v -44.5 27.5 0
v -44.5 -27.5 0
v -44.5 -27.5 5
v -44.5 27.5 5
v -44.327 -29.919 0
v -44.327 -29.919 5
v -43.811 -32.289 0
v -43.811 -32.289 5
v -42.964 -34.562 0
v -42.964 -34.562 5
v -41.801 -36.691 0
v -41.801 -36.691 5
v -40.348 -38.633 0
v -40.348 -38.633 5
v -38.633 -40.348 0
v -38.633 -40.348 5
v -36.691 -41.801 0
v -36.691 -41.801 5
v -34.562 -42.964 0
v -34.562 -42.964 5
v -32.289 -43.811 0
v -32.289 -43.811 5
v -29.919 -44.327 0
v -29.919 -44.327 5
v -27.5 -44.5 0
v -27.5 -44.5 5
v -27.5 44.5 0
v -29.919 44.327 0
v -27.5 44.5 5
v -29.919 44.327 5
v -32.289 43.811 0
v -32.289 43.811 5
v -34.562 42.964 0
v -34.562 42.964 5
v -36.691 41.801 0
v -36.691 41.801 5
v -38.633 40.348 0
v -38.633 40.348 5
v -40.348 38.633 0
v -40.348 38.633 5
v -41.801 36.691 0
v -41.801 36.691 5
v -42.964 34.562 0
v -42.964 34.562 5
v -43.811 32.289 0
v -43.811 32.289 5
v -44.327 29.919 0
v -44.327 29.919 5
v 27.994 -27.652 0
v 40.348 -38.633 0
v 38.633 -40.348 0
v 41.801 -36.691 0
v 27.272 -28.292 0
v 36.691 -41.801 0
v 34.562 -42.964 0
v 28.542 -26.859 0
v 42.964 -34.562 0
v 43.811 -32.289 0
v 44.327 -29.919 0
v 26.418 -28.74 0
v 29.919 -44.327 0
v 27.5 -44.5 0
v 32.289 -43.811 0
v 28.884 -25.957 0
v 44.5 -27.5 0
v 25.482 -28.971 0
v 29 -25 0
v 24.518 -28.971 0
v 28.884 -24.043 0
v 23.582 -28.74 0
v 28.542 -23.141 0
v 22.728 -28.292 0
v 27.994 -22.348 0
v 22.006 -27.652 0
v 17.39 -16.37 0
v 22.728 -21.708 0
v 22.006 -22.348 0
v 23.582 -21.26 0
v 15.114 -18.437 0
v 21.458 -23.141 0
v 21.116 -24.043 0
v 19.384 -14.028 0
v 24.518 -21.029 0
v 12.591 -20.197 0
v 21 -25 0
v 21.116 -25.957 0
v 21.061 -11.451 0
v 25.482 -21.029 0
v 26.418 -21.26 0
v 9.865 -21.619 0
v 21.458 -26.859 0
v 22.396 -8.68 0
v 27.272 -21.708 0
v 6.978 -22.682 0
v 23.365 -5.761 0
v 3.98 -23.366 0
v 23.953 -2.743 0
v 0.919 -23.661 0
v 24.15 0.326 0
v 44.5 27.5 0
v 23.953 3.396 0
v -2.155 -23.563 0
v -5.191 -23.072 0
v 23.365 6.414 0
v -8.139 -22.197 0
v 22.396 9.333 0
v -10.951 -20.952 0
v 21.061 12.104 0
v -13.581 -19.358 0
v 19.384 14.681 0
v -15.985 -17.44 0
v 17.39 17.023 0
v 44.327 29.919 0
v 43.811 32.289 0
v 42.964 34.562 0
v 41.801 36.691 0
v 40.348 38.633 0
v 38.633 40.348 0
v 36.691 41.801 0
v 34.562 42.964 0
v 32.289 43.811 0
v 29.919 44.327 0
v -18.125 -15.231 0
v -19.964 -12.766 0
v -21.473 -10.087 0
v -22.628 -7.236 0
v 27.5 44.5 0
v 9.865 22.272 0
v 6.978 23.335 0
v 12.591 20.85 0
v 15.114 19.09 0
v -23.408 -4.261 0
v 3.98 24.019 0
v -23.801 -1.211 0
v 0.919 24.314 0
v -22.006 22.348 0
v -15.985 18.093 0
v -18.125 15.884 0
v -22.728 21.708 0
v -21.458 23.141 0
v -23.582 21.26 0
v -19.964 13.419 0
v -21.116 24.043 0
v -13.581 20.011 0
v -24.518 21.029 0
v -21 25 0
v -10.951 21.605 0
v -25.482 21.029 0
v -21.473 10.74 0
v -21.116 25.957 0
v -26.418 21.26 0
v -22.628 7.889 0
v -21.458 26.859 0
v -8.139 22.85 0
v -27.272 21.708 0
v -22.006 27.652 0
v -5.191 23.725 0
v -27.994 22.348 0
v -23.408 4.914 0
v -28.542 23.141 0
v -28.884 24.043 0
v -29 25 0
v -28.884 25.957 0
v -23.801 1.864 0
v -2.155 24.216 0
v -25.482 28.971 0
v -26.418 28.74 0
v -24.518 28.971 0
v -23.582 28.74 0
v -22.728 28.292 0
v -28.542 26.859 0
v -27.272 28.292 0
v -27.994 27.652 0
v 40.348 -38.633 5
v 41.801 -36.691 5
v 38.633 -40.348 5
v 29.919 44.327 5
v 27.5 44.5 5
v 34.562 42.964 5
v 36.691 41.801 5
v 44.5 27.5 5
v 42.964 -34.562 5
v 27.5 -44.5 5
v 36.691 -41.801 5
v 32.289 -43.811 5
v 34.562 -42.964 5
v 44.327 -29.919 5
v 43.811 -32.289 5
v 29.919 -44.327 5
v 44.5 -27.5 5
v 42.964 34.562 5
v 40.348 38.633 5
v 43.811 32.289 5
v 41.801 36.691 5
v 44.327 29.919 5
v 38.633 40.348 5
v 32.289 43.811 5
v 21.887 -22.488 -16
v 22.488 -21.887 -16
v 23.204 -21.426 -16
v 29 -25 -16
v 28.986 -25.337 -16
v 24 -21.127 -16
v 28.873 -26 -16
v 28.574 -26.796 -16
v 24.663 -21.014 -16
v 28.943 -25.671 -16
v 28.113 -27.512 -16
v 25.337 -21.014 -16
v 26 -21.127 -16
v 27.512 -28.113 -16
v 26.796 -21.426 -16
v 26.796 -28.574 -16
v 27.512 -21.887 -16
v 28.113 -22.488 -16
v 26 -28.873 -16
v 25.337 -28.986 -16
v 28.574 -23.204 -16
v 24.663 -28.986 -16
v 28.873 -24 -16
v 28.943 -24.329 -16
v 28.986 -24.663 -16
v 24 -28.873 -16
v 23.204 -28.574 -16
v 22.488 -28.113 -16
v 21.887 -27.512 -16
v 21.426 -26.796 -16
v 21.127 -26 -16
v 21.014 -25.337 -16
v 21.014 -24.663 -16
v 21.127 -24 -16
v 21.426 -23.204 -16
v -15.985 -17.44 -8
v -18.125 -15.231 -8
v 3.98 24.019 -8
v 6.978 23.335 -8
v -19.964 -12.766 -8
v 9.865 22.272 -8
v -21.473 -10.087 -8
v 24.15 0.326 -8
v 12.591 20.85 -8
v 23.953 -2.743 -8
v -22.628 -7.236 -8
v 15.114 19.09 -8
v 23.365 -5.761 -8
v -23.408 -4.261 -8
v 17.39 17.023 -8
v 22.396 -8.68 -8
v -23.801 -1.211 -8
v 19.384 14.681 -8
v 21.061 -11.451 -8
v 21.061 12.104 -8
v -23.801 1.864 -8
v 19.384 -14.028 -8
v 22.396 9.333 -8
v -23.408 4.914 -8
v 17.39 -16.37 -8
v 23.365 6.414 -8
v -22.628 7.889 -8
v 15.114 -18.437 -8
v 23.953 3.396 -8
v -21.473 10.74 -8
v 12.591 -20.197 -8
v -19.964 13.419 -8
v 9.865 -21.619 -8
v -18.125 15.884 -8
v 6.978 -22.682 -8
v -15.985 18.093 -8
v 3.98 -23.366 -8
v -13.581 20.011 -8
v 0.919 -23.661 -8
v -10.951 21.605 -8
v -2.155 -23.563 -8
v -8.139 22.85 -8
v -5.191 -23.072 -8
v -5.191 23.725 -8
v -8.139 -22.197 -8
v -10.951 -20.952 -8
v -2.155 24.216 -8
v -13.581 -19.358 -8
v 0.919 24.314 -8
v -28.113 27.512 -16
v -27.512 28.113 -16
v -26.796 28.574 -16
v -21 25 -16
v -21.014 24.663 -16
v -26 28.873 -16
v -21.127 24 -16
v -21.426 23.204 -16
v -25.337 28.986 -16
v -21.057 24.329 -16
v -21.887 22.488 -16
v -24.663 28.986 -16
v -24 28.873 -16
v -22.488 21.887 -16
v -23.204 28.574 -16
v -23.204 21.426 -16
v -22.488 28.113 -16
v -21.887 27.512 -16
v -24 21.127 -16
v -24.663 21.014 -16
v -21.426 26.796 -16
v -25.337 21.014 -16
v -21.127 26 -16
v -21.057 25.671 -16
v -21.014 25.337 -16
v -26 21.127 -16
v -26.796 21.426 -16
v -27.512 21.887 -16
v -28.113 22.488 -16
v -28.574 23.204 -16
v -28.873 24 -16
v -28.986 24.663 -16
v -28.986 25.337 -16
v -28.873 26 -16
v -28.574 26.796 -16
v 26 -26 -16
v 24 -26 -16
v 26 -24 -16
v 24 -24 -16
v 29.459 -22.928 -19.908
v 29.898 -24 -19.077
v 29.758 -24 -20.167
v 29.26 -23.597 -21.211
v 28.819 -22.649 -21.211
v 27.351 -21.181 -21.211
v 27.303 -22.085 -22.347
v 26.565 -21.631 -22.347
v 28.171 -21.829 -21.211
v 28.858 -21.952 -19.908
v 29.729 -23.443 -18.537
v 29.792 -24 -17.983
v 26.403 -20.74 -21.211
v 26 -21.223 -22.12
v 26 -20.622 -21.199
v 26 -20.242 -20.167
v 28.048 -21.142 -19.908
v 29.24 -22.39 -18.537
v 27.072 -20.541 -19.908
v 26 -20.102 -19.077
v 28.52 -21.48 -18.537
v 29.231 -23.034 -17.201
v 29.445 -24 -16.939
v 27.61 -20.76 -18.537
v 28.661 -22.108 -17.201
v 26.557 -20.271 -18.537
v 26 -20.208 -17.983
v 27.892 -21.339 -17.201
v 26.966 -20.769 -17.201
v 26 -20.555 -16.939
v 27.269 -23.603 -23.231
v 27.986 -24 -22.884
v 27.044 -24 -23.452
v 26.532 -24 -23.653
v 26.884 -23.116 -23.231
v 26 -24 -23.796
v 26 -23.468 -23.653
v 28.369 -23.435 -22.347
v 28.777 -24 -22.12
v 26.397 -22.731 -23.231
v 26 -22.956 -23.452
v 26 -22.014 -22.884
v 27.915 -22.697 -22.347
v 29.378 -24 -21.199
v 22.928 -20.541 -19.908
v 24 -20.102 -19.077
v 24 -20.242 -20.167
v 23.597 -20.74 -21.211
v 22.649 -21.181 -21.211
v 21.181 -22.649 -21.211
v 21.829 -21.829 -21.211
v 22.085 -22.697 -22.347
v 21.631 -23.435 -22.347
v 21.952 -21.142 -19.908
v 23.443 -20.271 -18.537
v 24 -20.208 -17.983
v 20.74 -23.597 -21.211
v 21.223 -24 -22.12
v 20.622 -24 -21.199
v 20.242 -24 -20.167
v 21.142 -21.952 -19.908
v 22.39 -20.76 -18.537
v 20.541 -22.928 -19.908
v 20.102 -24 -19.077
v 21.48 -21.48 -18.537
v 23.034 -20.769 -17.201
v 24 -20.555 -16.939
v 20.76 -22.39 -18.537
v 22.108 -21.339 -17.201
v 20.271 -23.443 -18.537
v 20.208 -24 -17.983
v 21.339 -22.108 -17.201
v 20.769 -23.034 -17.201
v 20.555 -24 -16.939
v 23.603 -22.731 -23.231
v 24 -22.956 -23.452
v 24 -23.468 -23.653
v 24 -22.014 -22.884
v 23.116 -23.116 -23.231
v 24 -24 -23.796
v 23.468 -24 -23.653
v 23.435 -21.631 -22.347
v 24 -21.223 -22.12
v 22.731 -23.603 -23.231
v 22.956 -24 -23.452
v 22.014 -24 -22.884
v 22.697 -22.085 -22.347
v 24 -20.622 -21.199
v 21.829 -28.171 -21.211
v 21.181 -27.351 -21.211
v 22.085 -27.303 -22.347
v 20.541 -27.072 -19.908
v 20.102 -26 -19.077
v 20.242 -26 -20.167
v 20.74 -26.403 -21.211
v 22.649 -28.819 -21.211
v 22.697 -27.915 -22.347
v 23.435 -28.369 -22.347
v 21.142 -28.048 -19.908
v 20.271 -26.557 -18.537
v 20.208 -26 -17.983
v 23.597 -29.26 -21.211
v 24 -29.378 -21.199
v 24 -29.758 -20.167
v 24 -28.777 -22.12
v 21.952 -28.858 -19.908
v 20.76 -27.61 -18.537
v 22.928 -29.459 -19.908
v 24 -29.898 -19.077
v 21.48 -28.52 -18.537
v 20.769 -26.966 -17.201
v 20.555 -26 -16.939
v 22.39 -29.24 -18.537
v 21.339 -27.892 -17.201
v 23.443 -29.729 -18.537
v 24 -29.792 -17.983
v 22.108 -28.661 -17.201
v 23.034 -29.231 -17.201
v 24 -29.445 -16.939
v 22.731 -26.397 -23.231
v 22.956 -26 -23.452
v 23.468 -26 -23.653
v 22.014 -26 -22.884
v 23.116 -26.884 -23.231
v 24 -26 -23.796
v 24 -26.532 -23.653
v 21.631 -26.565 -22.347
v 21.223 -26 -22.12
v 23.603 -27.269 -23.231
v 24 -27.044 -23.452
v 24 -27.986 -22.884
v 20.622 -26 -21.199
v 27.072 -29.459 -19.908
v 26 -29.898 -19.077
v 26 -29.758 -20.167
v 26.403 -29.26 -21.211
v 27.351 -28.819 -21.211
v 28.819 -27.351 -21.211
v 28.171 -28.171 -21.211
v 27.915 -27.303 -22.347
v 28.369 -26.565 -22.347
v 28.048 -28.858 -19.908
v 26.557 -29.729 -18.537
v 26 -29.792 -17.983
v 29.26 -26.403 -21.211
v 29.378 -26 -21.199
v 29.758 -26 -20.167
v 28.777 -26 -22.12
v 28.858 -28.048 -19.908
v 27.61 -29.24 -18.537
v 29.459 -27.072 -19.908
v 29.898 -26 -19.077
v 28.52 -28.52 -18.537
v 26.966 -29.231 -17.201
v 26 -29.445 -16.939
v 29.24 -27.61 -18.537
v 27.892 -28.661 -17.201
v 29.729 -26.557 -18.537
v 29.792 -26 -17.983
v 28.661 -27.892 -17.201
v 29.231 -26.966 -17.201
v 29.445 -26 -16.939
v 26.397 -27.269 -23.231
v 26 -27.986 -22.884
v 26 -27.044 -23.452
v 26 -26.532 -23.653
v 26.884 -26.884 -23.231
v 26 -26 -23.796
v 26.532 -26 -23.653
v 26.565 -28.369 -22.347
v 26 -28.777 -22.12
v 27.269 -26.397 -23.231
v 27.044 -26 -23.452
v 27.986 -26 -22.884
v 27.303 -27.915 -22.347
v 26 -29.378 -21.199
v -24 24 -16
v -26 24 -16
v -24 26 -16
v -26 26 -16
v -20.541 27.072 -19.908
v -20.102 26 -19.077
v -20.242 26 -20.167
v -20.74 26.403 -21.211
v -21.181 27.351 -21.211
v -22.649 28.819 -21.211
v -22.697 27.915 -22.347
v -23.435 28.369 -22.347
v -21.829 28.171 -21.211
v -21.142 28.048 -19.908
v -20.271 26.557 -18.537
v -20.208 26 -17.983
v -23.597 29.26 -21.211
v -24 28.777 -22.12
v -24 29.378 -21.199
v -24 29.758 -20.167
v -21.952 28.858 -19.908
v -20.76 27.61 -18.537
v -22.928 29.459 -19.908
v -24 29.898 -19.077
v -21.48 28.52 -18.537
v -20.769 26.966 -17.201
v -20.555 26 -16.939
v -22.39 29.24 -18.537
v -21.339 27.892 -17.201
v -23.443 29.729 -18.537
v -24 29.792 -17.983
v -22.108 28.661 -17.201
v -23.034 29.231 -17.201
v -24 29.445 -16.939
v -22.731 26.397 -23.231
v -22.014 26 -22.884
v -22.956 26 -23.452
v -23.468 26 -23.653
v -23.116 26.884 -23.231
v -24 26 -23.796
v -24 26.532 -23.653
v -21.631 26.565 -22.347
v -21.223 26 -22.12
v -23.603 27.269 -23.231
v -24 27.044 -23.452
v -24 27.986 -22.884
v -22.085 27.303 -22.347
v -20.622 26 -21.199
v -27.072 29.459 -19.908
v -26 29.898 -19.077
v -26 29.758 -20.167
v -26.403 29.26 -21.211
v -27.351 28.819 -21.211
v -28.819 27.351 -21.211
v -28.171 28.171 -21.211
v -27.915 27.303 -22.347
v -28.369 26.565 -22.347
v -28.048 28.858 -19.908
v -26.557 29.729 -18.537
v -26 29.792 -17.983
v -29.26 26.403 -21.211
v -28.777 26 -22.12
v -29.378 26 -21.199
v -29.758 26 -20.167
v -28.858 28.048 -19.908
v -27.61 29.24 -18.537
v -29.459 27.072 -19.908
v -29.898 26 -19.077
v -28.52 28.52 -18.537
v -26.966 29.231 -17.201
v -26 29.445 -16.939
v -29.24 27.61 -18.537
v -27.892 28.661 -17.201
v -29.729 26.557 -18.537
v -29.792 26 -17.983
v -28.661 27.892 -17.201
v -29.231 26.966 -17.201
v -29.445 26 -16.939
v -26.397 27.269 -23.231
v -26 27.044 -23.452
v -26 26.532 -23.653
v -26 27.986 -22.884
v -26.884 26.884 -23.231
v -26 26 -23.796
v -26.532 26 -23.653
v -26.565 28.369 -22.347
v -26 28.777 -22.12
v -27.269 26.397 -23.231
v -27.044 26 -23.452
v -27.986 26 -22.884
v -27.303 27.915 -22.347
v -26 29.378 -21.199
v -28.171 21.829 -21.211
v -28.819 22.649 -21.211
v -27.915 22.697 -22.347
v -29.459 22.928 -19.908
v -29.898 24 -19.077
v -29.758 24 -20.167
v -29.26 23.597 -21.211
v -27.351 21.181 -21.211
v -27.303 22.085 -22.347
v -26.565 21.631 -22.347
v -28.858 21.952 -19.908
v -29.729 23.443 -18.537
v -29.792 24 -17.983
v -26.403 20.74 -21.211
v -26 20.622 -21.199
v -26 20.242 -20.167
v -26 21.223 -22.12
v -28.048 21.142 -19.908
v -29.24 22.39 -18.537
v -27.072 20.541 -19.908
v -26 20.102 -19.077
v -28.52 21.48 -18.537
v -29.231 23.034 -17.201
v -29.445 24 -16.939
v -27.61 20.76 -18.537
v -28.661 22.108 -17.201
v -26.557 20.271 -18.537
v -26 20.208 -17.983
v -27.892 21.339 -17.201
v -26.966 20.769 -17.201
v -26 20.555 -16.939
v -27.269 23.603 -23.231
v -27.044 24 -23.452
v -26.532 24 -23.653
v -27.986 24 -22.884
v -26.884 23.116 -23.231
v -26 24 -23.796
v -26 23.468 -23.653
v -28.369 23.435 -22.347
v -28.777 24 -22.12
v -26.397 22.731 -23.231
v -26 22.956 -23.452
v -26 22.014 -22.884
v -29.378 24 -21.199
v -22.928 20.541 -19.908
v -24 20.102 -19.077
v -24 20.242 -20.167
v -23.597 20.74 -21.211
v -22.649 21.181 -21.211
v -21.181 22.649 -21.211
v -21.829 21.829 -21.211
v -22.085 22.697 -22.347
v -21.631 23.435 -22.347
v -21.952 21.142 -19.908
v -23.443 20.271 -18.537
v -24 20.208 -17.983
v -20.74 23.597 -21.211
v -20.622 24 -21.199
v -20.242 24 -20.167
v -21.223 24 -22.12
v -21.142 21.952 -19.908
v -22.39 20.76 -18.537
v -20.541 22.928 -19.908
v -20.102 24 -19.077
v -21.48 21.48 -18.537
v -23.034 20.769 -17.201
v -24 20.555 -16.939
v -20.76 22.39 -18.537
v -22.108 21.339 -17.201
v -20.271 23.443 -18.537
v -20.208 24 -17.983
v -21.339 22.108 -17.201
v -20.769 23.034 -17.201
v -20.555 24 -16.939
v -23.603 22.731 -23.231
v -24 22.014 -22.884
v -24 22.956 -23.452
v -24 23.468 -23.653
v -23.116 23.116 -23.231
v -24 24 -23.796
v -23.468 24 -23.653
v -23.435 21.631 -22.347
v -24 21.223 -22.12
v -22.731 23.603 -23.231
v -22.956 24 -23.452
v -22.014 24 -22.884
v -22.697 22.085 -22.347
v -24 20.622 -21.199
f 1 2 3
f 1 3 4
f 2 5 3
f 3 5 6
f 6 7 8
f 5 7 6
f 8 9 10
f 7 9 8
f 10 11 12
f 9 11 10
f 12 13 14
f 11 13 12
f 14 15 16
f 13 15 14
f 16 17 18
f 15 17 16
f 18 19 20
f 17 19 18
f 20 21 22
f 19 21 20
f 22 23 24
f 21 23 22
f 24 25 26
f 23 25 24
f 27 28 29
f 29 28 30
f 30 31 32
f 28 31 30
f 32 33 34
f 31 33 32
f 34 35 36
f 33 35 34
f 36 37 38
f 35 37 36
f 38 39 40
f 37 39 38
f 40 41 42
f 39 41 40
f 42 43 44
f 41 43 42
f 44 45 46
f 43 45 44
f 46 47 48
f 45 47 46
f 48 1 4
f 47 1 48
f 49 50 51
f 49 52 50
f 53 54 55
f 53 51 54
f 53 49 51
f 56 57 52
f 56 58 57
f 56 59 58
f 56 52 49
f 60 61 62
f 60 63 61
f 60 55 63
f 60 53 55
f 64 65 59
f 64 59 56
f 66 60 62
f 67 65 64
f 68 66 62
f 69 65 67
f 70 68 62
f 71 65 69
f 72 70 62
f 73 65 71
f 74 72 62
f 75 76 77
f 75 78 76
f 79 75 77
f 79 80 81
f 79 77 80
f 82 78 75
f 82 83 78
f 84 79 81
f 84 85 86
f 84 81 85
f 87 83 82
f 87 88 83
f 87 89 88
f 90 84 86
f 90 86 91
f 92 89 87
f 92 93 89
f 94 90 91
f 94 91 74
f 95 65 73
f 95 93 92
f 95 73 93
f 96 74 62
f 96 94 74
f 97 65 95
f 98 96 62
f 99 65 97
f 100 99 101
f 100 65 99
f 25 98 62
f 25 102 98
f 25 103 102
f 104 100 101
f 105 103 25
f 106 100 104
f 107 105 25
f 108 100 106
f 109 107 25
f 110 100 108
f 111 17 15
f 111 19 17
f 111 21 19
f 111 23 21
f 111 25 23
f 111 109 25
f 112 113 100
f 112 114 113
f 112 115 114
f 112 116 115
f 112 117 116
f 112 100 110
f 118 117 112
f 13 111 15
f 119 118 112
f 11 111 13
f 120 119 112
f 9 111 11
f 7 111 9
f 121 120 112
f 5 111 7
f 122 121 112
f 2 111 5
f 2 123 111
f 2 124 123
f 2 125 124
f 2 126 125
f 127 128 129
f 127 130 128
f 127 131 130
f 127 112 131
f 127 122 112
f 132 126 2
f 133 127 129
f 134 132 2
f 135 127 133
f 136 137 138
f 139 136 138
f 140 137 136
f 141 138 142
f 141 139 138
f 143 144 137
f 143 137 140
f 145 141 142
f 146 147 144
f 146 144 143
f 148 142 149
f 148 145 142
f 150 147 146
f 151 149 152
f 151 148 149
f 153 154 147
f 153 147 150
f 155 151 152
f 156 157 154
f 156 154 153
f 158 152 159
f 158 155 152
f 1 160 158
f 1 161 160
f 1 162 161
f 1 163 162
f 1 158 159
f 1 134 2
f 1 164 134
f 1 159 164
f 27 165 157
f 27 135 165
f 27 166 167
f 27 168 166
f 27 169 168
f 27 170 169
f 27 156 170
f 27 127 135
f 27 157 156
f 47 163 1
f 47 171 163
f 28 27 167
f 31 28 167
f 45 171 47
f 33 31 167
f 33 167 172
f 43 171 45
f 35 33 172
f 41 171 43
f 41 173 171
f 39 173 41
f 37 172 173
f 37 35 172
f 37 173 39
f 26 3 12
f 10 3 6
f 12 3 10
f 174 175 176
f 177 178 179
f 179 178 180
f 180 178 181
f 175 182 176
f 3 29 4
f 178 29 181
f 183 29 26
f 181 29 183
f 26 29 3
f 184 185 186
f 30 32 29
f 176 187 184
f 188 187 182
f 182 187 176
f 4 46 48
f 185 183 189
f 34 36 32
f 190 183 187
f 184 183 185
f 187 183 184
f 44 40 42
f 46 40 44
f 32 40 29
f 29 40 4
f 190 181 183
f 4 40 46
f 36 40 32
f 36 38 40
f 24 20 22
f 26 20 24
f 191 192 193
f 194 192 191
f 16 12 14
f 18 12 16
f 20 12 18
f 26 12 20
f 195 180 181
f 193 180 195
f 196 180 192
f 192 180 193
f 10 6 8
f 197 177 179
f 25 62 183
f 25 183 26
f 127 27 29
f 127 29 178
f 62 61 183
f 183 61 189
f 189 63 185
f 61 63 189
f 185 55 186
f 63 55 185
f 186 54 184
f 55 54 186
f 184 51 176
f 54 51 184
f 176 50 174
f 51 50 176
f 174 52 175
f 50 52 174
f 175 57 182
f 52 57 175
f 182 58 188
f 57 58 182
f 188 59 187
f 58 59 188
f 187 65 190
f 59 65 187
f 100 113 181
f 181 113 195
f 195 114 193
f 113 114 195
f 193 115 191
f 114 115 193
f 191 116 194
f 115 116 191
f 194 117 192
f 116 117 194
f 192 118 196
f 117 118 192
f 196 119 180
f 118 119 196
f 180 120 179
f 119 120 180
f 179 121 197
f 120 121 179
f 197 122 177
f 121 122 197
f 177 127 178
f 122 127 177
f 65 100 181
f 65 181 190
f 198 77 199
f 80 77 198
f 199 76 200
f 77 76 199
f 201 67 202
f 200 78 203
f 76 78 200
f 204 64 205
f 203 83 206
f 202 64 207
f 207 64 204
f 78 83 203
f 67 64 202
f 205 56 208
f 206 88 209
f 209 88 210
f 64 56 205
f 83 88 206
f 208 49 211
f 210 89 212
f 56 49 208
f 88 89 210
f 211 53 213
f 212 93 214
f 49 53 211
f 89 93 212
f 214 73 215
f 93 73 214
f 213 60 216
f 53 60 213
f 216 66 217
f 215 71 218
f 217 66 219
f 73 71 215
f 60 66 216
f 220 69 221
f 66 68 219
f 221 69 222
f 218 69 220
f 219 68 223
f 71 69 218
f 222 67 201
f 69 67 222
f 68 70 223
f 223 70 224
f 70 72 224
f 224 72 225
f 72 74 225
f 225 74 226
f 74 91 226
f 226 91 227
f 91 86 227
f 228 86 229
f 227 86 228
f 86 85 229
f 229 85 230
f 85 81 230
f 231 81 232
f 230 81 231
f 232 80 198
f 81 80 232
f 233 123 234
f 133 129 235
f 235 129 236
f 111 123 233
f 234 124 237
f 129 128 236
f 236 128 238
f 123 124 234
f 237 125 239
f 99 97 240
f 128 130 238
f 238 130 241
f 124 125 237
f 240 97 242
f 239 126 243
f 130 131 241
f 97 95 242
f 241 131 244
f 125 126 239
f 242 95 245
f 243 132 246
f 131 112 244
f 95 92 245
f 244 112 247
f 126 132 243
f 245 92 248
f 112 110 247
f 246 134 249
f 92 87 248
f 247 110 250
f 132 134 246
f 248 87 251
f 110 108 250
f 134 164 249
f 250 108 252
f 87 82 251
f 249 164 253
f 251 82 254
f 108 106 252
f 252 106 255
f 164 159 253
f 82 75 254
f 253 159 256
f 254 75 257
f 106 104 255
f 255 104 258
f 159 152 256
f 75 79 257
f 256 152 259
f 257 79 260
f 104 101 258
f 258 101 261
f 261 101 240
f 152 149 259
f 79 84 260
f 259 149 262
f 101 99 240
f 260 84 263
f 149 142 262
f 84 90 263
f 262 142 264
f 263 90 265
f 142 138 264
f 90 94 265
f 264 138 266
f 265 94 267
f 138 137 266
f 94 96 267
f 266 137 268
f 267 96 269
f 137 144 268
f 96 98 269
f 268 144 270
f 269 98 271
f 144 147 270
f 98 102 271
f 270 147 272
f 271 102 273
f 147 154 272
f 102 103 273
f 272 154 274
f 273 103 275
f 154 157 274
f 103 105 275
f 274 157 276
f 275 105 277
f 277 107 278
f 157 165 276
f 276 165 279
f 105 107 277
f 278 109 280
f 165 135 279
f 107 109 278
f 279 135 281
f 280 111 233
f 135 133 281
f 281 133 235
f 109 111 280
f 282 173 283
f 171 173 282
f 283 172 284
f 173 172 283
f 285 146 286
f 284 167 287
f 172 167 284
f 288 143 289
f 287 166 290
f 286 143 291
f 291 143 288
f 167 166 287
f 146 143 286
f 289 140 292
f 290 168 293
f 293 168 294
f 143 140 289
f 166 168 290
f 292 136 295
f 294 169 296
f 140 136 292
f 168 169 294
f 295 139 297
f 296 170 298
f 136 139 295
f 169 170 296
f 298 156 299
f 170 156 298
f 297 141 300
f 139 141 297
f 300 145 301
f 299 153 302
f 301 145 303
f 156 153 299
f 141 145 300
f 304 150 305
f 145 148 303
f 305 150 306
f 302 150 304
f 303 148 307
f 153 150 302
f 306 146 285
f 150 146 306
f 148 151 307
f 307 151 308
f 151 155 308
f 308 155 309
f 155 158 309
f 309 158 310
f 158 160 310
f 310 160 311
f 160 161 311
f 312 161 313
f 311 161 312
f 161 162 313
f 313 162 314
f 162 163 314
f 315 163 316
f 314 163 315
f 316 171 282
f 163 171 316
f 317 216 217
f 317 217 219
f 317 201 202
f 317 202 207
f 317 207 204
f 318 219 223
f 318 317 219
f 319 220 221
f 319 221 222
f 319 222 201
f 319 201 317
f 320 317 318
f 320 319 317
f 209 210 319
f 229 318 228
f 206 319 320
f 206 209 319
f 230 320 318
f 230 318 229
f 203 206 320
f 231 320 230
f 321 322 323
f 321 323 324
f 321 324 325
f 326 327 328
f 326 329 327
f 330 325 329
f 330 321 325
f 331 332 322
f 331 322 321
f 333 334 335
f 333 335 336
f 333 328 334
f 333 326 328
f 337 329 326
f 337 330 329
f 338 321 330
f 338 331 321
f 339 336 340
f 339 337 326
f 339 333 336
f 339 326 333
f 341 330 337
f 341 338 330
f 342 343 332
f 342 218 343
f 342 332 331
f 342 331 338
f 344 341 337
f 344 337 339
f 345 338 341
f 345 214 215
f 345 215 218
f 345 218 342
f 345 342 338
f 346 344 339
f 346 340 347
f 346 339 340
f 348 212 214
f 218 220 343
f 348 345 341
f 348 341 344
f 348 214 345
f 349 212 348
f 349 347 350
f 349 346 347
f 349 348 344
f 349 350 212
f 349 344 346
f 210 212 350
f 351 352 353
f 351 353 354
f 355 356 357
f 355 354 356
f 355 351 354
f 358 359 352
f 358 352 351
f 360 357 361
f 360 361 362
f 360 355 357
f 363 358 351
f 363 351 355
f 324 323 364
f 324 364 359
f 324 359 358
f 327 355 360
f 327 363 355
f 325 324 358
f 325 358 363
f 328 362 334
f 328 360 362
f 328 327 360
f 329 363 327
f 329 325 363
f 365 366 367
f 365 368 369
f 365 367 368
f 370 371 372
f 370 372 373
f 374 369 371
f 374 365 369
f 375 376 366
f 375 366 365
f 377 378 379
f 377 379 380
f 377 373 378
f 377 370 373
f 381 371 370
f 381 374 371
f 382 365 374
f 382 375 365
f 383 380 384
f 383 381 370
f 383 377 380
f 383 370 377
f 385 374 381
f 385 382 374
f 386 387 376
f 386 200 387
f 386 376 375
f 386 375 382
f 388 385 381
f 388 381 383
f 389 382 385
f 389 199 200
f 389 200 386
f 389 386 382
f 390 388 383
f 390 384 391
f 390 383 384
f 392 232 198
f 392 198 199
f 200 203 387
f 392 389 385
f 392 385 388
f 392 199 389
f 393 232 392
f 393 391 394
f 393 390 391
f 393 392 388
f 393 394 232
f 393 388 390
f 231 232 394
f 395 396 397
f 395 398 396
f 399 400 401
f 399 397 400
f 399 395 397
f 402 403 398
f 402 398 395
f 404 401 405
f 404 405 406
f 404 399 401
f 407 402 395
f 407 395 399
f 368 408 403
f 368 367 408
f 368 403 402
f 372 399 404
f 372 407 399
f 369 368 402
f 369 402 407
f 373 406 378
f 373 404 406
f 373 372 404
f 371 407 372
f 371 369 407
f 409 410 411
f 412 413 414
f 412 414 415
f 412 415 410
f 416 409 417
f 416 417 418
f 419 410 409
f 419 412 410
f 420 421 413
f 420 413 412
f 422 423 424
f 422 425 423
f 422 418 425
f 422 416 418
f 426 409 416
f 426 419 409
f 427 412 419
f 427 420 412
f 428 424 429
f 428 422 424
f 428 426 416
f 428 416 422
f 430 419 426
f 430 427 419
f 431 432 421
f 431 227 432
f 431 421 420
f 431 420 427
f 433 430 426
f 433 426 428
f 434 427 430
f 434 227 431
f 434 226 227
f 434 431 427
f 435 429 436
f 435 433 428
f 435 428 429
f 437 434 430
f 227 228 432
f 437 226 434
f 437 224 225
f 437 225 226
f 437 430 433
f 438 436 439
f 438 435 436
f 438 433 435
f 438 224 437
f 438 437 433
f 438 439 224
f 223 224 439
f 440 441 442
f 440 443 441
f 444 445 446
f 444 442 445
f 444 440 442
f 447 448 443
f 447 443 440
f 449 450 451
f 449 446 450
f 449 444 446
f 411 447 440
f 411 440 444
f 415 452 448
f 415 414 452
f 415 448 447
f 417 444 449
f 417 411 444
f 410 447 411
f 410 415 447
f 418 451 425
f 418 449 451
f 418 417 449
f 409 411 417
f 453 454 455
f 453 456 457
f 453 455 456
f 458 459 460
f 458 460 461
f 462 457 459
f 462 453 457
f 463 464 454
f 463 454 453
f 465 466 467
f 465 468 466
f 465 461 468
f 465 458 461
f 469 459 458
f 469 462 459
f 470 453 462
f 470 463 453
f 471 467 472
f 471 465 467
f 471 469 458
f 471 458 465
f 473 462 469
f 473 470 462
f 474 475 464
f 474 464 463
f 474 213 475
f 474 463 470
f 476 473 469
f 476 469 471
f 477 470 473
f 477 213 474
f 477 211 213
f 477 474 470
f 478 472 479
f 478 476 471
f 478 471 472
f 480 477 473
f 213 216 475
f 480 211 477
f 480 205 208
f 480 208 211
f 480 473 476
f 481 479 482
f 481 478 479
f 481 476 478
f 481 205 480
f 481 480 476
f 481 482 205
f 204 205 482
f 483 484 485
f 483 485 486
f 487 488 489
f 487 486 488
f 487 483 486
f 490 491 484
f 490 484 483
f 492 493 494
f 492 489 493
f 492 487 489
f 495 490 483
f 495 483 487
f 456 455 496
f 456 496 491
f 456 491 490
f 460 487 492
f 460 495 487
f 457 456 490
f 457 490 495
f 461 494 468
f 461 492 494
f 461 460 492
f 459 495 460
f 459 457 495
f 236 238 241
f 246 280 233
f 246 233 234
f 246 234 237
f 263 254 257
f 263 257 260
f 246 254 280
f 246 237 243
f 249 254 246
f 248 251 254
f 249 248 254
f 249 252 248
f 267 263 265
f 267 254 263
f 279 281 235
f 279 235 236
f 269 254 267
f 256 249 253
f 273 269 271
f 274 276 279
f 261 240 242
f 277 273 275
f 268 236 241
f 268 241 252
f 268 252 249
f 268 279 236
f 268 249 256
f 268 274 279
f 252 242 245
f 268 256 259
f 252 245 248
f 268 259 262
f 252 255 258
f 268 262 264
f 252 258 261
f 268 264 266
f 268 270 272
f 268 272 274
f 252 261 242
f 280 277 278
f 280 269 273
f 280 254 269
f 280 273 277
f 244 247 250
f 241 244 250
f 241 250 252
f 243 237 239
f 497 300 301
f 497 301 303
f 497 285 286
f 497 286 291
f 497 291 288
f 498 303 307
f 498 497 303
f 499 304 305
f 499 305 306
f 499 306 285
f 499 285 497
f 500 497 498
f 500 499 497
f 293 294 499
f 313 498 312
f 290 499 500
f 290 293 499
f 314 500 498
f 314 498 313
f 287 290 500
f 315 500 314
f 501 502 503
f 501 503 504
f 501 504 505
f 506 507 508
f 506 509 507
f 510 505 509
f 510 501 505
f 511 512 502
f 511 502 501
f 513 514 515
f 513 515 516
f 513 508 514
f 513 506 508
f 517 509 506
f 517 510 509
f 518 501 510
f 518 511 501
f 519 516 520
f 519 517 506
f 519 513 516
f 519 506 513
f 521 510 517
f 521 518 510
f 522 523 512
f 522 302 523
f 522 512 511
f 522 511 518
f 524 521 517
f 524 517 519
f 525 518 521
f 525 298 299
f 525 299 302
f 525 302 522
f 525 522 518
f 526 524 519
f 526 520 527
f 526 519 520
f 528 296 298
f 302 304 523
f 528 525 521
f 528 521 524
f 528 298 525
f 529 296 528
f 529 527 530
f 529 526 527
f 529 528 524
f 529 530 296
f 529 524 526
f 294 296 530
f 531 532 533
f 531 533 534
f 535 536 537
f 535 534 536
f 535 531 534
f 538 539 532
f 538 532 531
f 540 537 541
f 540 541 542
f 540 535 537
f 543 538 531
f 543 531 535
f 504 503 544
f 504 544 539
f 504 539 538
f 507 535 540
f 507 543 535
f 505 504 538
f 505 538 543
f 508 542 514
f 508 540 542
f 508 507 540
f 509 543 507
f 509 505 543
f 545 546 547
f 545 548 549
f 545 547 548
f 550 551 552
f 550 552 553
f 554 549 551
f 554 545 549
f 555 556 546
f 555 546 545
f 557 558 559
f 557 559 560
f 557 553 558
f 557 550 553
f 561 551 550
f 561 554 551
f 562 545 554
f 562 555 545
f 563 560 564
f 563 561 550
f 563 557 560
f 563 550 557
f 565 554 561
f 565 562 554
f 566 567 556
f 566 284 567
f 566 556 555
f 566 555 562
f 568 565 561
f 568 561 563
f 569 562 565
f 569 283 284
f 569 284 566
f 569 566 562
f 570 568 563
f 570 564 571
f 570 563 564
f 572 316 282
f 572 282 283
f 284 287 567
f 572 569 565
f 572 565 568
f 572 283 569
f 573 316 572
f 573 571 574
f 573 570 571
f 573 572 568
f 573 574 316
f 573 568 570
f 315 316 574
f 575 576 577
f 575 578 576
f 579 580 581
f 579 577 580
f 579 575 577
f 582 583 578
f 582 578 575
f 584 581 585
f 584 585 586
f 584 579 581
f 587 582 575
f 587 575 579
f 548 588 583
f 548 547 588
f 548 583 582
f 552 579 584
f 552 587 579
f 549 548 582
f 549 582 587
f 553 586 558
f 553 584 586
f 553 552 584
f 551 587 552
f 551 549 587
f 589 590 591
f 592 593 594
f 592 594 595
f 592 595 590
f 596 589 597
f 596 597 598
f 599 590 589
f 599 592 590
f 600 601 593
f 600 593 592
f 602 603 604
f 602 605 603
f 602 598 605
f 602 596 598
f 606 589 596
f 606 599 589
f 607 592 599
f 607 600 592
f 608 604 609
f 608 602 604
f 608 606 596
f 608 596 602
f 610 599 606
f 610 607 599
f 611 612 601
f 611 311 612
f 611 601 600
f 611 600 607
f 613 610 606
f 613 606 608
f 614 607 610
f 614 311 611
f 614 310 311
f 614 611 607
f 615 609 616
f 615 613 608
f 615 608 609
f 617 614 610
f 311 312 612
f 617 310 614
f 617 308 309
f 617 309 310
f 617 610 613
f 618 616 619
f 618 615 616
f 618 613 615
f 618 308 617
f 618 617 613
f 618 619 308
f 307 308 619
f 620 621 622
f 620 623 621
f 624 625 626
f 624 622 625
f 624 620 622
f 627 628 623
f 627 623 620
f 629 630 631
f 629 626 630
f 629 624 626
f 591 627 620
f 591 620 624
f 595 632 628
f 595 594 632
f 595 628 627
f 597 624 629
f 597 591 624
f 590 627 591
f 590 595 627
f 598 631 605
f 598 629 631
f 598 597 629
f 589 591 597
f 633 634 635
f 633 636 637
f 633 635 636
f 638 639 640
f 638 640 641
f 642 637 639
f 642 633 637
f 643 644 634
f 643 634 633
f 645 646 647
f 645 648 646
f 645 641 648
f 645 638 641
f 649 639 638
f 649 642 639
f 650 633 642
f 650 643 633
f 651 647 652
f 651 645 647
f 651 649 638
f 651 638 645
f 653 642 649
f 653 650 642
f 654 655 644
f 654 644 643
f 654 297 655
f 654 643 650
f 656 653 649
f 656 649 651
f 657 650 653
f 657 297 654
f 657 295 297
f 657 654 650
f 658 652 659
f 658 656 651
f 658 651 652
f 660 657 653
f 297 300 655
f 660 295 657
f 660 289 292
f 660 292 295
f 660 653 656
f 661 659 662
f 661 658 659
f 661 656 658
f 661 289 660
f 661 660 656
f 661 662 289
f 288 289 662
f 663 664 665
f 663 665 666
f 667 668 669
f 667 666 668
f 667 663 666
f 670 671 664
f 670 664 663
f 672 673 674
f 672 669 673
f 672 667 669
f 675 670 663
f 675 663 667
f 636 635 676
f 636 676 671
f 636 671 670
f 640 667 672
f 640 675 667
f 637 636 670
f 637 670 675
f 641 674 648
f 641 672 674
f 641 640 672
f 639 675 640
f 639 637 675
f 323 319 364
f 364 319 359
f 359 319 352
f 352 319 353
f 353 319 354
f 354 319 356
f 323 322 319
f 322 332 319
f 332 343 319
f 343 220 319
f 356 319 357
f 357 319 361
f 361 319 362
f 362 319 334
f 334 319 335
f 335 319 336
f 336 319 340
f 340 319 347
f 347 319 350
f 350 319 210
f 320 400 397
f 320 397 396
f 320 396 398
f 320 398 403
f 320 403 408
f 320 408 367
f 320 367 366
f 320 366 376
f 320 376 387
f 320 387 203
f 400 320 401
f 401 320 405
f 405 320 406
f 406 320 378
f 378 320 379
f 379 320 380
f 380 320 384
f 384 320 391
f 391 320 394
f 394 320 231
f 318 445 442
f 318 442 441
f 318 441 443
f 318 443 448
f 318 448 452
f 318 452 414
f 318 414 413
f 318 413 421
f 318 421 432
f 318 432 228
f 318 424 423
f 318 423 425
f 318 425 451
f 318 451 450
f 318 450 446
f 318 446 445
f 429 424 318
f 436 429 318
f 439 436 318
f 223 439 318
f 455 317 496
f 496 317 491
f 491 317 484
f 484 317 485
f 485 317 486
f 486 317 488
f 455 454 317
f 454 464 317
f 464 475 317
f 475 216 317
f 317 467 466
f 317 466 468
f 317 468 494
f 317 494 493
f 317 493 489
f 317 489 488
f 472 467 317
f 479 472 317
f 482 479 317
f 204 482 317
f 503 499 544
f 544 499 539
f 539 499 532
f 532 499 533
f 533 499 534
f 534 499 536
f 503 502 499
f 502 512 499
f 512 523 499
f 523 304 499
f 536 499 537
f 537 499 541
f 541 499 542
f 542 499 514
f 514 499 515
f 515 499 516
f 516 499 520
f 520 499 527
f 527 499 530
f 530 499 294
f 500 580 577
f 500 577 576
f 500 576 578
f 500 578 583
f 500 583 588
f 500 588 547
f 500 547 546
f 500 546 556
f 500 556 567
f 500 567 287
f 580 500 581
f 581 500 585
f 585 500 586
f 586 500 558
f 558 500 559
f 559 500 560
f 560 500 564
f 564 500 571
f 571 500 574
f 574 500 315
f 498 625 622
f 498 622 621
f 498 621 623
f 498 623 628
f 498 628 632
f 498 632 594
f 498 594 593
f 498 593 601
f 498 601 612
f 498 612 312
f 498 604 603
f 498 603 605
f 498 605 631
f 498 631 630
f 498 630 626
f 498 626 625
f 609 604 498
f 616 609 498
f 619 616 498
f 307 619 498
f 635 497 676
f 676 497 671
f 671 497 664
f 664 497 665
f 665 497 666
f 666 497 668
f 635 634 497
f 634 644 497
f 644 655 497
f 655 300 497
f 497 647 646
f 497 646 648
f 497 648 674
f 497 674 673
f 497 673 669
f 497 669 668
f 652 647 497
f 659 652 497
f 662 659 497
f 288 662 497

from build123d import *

# Parameters (mm, degrees)
BOX002_W     = 2
BOX002_H     = 12
BOX002_DEPTH = 10
BOX001_W     = 12
BOX001_H     = 2
BOX001_DEPTH = 10
BOX003_W     = 2
BOX003_H     = 12
BOX003_DEPTH = 10
BOX_W        = 12
BOX_H        = 2
BOX_DEPTH    = 10
PAD_DEPTH    = 5
SKETCH001_R  = 24
PAD001_DEPTH = 8
SKETCH002_R  = 4
PAD002_DEPTH = 16


with BuildPart() as cubo002:
    # Box002 → Box002 (new body)
    with BuildSketch(Plane(origin=(-26, 19, -25), x_dir=(1, 0, 0), z_dir=(0, 0, 1))):
        with Locations((1, 6)):
            Rectangle(BOX002_W, BOX002_H)
    extrude(amount=BOX002_DEPTH)


with BuildPart() as fusion:
    # Box001 → Box001 (new body)
    with BuildSketch(Plane(origin=(-31, 24, -25), x_dir=(1, 0, 0), z_dir=(0, 0, 1))):
        with Locations((6, 1)):
            Rectangle(BOX001_W, BOX001_H)
    extrude(amount=BOX001_DEPTH)

    # Fusion: union Cubo002
    add(cubo002.part)


with BuildPart() as cut001:
    # Sphere001 → Sphere001 (revolve)
    with BuildSketch(Plane(origin=(-25, 25, -19), x_dir=(1, 0, 0), z_dir=(0, -1, 0))):
        with BuildLine():
            ThreePointArc((0, -5), (5, 0), (0, 5))
            Line((0, 5), (0, -5))
        make_face()
    revolve(axis=Axis((-25, 25, -19), (0, 0, 1)))

    # Cut001: cut Fusion
    add(fusion.part, mode=Mode.SUBTRACT)


with BuildPart() as cubo003:
    # Box003 → Box003 (new body)
    with BuildSketch(Plane(origin=(24, -31, -25), x_dir=(1, 0, 0), z_dir=(0, 0, 1))):
        with Locations((1, 6)):
            Rectangle(BOX003_W, BOX003_H)
    extrude(amount=BOX003_DEPTH)


with BuildPart() as fusion001:
    # Box → Box (new body)
    with BuildSketch(Plane(origin=(19, -26, -25), x_dir=(1, 0, 0), z_dir=(0, 0, 1))):
        with Locations((6, 1)):
            Rectangle(BOX_W, BOX_H)
    extrude(amount=BOX_DEPTH)

    # Fusion001: union Cubo003
    add(cubo003.part)


with BuildPart() as cut:
    # Sphere → Sphere (revolve)
    with BuildSketch(Plane(origin=(25, -25, -19), x_dir=(1, 0, 0), z_dir=(0, -1, 0))):
        with BuildLine():
            ThreePointArc((0, -5), (5, 0), (0, 5))
            Line((0, 5), (0, -5))
        make_face()
    revolve(axis=Axis((25, -25, -19), (0, 0, 1)))

    # Cut: cut Fusion001
    add(fusion001.part, mode=Mode.SUBTRACT)


with BuildPart() as fusion002:
    # Sketch → Pad (new body)
    with BuildSketch(Plane.XY):
        with BuildLine():
            Line((-27.5, 44.5), (27.5, 44.5))
            ThreePointArc((44.5, 27.5), (39.520815, 39.520815), (27.5, 44.5))
            Line((44.5, 27.5), (44.5, -27.5))
            ThreePointArc((27.5, -44.5), (39.520815, -39.520815), (44.5, -27.5))
            Line((27.5, -44.5), (-27.5, -44.5))
            ThreePointArc((-44.5, -27.5), (-39.520815, -39.520815), (-27.5, -44.5))
            Line((-44.5, -27.5), (-44.5, 27.5))
            ThreePointArc((-27.5, 44.5), (-39.520815, 39.520815), (-44.5, 27.5))
        make_face()
    extrude(amount=PAD_DEPTH)

    # Sketch001 (on Face9 of Pad) → Pad001 (join)
    with BuildSketch(Plane(origin=(0, 0, 0), x_dir=(1, 0, 0), z_dir=(0, 0, -1))):
        with Locations((0.149781, -0.32649)):
            Circle(SKETCH001_R)
    extrude(amount=PAD001_DEPTH)

    # Sketch002 (on Face4 of Pad001) → Pad002 (join)
    with BuildSketch(Plane(origin=(0, 0, 0), x_dir=(1, 0, 0), z_dir=(0, 0, -1))):
        with Locations((25, 25)):
            Circle(SKETCH002_R)
        with Locations((-25, -25)):
            Circle(SKETCH002_R)
    extrude(amount=PAD002_DEPTH)

    # Fusion002: union Cut001, Cut
    add(cut001.part)
    add(cut.part)


solid = fusion002.part
